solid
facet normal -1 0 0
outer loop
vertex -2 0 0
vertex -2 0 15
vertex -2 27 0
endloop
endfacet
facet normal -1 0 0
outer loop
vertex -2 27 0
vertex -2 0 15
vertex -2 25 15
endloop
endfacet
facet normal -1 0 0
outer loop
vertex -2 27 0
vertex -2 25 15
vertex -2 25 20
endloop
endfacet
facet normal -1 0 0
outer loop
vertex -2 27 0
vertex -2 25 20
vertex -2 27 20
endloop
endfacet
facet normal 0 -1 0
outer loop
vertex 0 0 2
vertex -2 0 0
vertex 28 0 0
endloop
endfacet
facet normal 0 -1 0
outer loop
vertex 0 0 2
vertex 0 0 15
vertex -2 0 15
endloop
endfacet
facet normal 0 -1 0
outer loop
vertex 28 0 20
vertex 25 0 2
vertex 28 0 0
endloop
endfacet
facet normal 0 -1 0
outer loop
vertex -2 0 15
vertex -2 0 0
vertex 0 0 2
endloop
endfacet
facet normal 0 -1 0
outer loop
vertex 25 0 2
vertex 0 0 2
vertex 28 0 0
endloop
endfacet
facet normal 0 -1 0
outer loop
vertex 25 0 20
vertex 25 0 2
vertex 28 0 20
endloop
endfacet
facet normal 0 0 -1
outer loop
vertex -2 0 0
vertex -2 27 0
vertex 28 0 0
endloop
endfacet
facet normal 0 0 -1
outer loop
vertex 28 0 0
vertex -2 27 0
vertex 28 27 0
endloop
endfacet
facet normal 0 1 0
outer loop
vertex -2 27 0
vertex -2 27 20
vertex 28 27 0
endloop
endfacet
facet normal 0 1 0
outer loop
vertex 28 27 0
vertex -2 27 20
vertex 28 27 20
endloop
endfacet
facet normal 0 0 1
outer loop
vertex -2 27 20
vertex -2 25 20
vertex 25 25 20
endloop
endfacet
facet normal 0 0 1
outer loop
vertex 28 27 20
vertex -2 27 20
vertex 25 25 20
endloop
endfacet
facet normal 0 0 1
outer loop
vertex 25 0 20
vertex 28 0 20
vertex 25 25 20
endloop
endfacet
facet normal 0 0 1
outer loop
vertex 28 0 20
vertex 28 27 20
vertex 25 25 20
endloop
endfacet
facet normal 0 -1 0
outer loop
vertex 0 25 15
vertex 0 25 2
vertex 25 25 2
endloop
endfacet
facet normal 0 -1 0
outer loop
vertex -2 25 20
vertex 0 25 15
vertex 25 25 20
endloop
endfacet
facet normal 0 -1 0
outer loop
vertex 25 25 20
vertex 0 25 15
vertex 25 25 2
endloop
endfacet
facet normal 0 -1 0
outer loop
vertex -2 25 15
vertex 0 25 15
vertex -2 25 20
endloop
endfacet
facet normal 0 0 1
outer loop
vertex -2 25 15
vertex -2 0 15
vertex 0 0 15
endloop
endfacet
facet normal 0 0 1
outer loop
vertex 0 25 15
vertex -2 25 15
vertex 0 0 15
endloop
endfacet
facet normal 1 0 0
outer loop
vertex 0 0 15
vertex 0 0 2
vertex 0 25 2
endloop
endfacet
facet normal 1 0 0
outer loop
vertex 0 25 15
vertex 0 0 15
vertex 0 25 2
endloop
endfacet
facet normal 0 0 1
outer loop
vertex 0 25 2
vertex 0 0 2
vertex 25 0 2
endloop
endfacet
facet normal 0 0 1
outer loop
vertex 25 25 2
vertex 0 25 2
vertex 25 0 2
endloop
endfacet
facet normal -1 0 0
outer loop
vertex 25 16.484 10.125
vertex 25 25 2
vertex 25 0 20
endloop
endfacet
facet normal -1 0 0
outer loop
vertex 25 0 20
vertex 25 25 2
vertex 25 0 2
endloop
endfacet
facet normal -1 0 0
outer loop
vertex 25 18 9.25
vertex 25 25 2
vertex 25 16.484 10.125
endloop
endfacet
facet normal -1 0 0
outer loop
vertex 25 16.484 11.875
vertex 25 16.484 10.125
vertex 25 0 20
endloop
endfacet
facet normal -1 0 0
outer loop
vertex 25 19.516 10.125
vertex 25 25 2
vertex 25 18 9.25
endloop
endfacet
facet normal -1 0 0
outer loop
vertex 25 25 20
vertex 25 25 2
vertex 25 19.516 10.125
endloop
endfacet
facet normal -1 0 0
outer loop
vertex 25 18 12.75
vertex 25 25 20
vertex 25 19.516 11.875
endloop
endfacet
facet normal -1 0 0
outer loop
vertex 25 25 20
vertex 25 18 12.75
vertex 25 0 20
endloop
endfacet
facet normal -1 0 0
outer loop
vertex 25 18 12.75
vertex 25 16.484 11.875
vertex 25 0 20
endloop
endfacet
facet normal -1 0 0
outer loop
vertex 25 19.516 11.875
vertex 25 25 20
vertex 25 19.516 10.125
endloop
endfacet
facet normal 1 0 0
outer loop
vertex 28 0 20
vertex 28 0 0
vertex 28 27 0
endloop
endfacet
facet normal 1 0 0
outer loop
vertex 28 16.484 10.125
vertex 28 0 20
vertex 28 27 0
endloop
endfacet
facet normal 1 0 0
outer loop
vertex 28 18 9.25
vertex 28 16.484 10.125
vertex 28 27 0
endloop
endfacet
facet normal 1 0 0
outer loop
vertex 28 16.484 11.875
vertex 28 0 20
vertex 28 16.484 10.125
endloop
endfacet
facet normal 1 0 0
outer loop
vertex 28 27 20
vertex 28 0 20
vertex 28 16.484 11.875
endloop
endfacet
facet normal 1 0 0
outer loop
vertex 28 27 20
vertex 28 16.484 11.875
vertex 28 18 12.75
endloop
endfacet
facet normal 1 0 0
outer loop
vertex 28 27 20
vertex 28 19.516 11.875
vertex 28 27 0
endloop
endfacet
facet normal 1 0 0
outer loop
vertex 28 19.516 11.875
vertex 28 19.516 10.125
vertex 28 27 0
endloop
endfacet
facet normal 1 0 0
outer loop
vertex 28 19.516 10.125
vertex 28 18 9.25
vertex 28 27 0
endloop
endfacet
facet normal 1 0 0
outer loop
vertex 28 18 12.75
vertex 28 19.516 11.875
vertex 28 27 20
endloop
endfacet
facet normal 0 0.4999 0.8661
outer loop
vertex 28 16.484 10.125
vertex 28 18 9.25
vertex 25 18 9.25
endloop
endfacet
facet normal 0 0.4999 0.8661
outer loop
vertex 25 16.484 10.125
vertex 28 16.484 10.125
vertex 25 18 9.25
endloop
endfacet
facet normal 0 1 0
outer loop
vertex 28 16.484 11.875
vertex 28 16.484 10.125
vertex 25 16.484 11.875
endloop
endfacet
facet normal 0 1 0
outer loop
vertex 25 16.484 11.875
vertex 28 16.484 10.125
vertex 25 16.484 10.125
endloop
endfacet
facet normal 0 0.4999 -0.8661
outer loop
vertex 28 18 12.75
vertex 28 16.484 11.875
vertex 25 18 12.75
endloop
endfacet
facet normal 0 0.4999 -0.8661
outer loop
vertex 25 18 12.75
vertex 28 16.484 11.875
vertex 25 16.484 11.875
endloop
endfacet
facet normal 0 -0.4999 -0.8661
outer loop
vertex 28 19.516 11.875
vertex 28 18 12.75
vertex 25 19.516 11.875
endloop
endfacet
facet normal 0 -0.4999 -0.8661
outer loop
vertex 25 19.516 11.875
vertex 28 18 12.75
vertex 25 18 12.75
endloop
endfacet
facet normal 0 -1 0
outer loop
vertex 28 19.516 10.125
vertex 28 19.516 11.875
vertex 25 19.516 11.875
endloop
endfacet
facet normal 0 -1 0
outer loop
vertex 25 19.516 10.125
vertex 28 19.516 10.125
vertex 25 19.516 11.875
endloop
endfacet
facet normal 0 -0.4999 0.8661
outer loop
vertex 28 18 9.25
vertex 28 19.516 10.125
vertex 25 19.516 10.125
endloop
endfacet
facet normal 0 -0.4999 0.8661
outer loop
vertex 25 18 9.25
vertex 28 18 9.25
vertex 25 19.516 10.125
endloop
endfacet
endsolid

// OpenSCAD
difference()
{
union()
{
translate([-2,0,0]) cube([2,25,15]);
cube([25,25,2]);
translate([25,0,0]) cube([3,25,20]);
translate([-2,25,0]) cube([30,2,20]);
}
translate([24,18,11]) rotate([0,90,0])cylinder(d=3.5,h=5);
}
